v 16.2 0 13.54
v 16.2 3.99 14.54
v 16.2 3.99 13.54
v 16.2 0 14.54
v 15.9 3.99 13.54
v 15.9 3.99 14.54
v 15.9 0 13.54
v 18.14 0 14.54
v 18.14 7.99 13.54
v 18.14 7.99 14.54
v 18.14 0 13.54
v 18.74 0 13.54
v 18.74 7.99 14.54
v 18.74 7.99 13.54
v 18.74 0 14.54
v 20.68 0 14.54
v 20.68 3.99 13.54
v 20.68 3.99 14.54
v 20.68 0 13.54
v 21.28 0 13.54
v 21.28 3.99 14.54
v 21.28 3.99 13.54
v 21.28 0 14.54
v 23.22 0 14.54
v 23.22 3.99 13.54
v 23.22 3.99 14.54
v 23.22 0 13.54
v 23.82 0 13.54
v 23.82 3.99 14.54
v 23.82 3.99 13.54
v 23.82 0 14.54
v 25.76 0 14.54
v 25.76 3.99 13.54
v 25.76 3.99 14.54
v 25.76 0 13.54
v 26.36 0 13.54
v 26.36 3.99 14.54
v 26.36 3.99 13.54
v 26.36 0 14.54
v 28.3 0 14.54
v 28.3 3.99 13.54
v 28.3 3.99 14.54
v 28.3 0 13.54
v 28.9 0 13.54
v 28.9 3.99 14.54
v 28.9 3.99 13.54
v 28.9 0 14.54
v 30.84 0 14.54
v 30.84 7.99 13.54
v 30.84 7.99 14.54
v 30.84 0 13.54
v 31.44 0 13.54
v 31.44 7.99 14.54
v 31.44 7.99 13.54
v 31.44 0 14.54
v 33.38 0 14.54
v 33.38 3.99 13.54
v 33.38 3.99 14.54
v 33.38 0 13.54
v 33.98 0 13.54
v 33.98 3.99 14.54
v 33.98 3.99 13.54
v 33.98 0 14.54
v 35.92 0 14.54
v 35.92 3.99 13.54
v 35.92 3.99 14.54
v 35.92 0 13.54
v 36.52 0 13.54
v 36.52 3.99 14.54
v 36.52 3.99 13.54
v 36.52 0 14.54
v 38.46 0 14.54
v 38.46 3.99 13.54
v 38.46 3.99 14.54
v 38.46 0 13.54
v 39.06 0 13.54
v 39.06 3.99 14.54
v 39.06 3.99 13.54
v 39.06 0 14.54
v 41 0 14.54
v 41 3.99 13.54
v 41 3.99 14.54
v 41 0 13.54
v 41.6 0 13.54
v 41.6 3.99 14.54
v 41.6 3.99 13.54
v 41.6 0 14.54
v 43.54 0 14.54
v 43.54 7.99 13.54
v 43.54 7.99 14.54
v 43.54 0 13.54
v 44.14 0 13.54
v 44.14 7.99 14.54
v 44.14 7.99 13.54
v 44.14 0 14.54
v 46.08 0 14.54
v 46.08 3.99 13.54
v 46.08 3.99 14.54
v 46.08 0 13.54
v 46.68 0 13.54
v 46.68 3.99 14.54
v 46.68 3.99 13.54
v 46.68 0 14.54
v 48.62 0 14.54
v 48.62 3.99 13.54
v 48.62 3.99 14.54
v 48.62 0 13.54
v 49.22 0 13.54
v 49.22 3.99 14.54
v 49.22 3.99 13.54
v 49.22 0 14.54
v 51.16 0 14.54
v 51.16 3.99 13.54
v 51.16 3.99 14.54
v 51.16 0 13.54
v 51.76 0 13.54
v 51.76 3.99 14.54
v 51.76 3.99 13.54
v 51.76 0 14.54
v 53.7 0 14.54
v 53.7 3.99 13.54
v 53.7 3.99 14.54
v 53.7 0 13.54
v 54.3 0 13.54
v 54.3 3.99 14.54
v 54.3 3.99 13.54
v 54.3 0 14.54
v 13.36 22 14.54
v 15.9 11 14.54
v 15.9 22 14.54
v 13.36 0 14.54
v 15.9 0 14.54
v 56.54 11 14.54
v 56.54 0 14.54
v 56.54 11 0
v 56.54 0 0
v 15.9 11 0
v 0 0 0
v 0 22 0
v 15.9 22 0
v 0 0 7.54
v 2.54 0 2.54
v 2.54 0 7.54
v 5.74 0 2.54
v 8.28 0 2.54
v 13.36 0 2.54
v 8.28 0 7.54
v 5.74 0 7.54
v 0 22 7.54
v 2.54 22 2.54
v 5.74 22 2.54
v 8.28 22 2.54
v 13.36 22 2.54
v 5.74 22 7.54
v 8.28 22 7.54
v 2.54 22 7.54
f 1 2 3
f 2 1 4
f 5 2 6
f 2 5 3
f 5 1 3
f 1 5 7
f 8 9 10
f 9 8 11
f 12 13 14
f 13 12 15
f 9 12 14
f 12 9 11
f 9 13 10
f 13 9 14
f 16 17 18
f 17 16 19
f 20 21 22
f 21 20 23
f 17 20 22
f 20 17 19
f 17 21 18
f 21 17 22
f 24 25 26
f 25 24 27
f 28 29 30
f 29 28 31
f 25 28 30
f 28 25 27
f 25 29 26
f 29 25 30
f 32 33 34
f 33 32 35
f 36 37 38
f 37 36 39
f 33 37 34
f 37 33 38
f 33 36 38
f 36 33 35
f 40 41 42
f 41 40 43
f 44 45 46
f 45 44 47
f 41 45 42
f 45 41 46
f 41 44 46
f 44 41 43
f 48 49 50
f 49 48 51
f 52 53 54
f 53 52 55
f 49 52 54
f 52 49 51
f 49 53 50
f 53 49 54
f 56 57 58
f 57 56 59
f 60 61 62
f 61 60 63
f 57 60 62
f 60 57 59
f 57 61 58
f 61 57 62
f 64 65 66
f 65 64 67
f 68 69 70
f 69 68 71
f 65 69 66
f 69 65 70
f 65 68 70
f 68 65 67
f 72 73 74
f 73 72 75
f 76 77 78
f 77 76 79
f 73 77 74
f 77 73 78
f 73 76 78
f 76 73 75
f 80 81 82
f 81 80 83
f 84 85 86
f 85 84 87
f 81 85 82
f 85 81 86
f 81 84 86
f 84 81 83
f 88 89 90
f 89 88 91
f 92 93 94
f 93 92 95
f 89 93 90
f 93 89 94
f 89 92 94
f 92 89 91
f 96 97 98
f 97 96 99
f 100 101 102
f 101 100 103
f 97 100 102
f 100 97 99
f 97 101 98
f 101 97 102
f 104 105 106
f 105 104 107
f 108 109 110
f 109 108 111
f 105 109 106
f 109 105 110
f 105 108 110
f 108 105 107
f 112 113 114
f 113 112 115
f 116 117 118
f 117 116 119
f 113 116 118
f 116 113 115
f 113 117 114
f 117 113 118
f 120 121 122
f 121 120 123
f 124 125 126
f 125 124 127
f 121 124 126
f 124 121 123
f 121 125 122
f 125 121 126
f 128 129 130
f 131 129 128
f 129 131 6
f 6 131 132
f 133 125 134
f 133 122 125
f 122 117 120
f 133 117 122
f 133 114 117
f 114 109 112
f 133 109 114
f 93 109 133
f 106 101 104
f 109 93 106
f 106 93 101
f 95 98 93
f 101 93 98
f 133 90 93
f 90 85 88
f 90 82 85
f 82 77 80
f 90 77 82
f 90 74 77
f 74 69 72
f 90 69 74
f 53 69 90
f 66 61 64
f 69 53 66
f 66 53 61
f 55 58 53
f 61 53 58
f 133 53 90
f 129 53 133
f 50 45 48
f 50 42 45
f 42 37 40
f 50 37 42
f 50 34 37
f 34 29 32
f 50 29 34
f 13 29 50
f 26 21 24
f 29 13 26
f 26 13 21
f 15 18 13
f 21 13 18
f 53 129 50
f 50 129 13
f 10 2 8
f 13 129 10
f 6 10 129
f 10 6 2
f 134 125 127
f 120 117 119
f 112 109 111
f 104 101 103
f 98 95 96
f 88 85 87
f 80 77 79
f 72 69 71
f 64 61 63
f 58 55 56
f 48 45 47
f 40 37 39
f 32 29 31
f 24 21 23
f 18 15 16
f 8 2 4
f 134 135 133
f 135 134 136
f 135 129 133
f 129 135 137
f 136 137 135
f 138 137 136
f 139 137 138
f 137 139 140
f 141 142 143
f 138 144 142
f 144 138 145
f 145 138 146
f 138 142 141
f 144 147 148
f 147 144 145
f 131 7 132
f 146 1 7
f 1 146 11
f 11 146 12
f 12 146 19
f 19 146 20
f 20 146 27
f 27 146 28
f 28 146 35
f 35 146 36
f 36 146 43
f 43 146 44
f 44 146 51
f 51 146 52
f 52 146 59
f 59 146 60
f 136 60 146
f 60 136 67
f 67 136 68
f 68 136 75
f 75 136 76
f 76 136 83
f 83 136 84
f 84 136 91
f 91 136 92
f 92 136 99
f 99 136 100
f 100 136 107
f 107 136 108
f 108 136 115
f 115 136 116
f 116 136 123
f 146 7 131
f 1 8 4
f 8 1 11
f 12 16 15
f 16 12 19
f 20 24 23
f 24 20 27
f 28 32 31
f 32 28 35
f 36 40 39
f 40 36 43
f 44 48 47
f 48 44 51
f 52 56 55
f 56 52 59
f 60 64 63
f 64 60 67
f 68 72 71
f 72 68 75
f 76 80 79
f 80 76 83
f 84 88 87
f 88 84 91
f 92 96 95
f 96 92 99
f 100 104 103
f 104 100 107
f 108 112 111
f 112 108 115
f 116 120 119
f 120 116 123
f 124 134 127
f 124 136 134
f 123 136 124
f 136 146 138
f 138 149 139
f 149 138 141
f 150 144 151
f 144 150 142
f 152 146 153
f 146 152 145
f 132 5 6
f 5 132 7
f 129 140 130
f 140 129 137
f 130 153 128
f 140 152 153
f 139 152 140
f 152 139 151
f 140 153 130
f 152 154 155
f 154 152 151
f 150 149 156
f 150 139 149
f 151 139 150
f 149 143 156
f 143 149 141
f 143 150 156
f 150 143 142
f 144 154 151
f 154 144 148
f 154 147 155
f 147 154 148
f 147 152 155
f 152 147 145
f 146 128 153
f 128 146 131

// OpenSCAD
//Number of 0.1" increments of insulation to remove
strip_insulation_length = 3;

/* [Wirecutter] */
// Width of gap needed to grip wirecutter
grip_thickness = 3.2;
// Height of grip around wirecutter
grip_height = 5; 
// Length of grip that holds onto wirecutter
length = 22;
// Height of the backwall that serves as a stop for wire when stripping insulation
backwall_height = 12; // based on height of wirecutter

/* [Measurement Surface]*/
number_of_pins = 20;

/* [Hidden] */
//breadboard specs
pin_gap = 2.54; // 0.1" standard breadboard
wire_strip_length = strip_insulation_length * pin_gap;
thick = pin_gap;


baseline = thick + grip_thickness + wire_strip_length + thick;

// base
cube([baseline, length, thick]);

//grip front
cube([thick, length, grip_height + thick]);

//grip back
translate([thick + grip_thickness, 0, 0]){
cube([thick, length, grip_height + thick]);
}


cutting_edge = thick + grip_thickness;

// backwall

backwall_start = cutting_edge + wire_strip_length;

translate([backwall_start, 0, 0]) {
  cube([thick, length, thick + backwall_height]);
}


translate([cutting_edge, 0, 0]){
  // measuring surface (consumes backwall)
  measure_length = length / 2;
  
  difference(){
  translate([wire_strip_length, 0, 0]){
    cube([(number_of_pins * pin_gap) - wire_strip_length, measure_length, thick + backwall_height]);
  }

  //pin guide
  guide_depth = 1;
  guide_thick = 0.6;
  guide_length = 4;
  
  for(center = [1:(number_of_pins - 1)]){
    this_offset = center * pin_gap;
    // -0.01 is to make it have hole on side
    translate([this_offset - (guide_thick / 2), -0.01, backwall_height + thick - guide_depth]){
      line_length = (center % 5 == 0) ? (guide_length * 2) : guide_length;
      
      // 100 is just to make it tall, so it always cuts thru to top
      cube([guide_thick, line_length, 100]);

    }
  }
}
}
